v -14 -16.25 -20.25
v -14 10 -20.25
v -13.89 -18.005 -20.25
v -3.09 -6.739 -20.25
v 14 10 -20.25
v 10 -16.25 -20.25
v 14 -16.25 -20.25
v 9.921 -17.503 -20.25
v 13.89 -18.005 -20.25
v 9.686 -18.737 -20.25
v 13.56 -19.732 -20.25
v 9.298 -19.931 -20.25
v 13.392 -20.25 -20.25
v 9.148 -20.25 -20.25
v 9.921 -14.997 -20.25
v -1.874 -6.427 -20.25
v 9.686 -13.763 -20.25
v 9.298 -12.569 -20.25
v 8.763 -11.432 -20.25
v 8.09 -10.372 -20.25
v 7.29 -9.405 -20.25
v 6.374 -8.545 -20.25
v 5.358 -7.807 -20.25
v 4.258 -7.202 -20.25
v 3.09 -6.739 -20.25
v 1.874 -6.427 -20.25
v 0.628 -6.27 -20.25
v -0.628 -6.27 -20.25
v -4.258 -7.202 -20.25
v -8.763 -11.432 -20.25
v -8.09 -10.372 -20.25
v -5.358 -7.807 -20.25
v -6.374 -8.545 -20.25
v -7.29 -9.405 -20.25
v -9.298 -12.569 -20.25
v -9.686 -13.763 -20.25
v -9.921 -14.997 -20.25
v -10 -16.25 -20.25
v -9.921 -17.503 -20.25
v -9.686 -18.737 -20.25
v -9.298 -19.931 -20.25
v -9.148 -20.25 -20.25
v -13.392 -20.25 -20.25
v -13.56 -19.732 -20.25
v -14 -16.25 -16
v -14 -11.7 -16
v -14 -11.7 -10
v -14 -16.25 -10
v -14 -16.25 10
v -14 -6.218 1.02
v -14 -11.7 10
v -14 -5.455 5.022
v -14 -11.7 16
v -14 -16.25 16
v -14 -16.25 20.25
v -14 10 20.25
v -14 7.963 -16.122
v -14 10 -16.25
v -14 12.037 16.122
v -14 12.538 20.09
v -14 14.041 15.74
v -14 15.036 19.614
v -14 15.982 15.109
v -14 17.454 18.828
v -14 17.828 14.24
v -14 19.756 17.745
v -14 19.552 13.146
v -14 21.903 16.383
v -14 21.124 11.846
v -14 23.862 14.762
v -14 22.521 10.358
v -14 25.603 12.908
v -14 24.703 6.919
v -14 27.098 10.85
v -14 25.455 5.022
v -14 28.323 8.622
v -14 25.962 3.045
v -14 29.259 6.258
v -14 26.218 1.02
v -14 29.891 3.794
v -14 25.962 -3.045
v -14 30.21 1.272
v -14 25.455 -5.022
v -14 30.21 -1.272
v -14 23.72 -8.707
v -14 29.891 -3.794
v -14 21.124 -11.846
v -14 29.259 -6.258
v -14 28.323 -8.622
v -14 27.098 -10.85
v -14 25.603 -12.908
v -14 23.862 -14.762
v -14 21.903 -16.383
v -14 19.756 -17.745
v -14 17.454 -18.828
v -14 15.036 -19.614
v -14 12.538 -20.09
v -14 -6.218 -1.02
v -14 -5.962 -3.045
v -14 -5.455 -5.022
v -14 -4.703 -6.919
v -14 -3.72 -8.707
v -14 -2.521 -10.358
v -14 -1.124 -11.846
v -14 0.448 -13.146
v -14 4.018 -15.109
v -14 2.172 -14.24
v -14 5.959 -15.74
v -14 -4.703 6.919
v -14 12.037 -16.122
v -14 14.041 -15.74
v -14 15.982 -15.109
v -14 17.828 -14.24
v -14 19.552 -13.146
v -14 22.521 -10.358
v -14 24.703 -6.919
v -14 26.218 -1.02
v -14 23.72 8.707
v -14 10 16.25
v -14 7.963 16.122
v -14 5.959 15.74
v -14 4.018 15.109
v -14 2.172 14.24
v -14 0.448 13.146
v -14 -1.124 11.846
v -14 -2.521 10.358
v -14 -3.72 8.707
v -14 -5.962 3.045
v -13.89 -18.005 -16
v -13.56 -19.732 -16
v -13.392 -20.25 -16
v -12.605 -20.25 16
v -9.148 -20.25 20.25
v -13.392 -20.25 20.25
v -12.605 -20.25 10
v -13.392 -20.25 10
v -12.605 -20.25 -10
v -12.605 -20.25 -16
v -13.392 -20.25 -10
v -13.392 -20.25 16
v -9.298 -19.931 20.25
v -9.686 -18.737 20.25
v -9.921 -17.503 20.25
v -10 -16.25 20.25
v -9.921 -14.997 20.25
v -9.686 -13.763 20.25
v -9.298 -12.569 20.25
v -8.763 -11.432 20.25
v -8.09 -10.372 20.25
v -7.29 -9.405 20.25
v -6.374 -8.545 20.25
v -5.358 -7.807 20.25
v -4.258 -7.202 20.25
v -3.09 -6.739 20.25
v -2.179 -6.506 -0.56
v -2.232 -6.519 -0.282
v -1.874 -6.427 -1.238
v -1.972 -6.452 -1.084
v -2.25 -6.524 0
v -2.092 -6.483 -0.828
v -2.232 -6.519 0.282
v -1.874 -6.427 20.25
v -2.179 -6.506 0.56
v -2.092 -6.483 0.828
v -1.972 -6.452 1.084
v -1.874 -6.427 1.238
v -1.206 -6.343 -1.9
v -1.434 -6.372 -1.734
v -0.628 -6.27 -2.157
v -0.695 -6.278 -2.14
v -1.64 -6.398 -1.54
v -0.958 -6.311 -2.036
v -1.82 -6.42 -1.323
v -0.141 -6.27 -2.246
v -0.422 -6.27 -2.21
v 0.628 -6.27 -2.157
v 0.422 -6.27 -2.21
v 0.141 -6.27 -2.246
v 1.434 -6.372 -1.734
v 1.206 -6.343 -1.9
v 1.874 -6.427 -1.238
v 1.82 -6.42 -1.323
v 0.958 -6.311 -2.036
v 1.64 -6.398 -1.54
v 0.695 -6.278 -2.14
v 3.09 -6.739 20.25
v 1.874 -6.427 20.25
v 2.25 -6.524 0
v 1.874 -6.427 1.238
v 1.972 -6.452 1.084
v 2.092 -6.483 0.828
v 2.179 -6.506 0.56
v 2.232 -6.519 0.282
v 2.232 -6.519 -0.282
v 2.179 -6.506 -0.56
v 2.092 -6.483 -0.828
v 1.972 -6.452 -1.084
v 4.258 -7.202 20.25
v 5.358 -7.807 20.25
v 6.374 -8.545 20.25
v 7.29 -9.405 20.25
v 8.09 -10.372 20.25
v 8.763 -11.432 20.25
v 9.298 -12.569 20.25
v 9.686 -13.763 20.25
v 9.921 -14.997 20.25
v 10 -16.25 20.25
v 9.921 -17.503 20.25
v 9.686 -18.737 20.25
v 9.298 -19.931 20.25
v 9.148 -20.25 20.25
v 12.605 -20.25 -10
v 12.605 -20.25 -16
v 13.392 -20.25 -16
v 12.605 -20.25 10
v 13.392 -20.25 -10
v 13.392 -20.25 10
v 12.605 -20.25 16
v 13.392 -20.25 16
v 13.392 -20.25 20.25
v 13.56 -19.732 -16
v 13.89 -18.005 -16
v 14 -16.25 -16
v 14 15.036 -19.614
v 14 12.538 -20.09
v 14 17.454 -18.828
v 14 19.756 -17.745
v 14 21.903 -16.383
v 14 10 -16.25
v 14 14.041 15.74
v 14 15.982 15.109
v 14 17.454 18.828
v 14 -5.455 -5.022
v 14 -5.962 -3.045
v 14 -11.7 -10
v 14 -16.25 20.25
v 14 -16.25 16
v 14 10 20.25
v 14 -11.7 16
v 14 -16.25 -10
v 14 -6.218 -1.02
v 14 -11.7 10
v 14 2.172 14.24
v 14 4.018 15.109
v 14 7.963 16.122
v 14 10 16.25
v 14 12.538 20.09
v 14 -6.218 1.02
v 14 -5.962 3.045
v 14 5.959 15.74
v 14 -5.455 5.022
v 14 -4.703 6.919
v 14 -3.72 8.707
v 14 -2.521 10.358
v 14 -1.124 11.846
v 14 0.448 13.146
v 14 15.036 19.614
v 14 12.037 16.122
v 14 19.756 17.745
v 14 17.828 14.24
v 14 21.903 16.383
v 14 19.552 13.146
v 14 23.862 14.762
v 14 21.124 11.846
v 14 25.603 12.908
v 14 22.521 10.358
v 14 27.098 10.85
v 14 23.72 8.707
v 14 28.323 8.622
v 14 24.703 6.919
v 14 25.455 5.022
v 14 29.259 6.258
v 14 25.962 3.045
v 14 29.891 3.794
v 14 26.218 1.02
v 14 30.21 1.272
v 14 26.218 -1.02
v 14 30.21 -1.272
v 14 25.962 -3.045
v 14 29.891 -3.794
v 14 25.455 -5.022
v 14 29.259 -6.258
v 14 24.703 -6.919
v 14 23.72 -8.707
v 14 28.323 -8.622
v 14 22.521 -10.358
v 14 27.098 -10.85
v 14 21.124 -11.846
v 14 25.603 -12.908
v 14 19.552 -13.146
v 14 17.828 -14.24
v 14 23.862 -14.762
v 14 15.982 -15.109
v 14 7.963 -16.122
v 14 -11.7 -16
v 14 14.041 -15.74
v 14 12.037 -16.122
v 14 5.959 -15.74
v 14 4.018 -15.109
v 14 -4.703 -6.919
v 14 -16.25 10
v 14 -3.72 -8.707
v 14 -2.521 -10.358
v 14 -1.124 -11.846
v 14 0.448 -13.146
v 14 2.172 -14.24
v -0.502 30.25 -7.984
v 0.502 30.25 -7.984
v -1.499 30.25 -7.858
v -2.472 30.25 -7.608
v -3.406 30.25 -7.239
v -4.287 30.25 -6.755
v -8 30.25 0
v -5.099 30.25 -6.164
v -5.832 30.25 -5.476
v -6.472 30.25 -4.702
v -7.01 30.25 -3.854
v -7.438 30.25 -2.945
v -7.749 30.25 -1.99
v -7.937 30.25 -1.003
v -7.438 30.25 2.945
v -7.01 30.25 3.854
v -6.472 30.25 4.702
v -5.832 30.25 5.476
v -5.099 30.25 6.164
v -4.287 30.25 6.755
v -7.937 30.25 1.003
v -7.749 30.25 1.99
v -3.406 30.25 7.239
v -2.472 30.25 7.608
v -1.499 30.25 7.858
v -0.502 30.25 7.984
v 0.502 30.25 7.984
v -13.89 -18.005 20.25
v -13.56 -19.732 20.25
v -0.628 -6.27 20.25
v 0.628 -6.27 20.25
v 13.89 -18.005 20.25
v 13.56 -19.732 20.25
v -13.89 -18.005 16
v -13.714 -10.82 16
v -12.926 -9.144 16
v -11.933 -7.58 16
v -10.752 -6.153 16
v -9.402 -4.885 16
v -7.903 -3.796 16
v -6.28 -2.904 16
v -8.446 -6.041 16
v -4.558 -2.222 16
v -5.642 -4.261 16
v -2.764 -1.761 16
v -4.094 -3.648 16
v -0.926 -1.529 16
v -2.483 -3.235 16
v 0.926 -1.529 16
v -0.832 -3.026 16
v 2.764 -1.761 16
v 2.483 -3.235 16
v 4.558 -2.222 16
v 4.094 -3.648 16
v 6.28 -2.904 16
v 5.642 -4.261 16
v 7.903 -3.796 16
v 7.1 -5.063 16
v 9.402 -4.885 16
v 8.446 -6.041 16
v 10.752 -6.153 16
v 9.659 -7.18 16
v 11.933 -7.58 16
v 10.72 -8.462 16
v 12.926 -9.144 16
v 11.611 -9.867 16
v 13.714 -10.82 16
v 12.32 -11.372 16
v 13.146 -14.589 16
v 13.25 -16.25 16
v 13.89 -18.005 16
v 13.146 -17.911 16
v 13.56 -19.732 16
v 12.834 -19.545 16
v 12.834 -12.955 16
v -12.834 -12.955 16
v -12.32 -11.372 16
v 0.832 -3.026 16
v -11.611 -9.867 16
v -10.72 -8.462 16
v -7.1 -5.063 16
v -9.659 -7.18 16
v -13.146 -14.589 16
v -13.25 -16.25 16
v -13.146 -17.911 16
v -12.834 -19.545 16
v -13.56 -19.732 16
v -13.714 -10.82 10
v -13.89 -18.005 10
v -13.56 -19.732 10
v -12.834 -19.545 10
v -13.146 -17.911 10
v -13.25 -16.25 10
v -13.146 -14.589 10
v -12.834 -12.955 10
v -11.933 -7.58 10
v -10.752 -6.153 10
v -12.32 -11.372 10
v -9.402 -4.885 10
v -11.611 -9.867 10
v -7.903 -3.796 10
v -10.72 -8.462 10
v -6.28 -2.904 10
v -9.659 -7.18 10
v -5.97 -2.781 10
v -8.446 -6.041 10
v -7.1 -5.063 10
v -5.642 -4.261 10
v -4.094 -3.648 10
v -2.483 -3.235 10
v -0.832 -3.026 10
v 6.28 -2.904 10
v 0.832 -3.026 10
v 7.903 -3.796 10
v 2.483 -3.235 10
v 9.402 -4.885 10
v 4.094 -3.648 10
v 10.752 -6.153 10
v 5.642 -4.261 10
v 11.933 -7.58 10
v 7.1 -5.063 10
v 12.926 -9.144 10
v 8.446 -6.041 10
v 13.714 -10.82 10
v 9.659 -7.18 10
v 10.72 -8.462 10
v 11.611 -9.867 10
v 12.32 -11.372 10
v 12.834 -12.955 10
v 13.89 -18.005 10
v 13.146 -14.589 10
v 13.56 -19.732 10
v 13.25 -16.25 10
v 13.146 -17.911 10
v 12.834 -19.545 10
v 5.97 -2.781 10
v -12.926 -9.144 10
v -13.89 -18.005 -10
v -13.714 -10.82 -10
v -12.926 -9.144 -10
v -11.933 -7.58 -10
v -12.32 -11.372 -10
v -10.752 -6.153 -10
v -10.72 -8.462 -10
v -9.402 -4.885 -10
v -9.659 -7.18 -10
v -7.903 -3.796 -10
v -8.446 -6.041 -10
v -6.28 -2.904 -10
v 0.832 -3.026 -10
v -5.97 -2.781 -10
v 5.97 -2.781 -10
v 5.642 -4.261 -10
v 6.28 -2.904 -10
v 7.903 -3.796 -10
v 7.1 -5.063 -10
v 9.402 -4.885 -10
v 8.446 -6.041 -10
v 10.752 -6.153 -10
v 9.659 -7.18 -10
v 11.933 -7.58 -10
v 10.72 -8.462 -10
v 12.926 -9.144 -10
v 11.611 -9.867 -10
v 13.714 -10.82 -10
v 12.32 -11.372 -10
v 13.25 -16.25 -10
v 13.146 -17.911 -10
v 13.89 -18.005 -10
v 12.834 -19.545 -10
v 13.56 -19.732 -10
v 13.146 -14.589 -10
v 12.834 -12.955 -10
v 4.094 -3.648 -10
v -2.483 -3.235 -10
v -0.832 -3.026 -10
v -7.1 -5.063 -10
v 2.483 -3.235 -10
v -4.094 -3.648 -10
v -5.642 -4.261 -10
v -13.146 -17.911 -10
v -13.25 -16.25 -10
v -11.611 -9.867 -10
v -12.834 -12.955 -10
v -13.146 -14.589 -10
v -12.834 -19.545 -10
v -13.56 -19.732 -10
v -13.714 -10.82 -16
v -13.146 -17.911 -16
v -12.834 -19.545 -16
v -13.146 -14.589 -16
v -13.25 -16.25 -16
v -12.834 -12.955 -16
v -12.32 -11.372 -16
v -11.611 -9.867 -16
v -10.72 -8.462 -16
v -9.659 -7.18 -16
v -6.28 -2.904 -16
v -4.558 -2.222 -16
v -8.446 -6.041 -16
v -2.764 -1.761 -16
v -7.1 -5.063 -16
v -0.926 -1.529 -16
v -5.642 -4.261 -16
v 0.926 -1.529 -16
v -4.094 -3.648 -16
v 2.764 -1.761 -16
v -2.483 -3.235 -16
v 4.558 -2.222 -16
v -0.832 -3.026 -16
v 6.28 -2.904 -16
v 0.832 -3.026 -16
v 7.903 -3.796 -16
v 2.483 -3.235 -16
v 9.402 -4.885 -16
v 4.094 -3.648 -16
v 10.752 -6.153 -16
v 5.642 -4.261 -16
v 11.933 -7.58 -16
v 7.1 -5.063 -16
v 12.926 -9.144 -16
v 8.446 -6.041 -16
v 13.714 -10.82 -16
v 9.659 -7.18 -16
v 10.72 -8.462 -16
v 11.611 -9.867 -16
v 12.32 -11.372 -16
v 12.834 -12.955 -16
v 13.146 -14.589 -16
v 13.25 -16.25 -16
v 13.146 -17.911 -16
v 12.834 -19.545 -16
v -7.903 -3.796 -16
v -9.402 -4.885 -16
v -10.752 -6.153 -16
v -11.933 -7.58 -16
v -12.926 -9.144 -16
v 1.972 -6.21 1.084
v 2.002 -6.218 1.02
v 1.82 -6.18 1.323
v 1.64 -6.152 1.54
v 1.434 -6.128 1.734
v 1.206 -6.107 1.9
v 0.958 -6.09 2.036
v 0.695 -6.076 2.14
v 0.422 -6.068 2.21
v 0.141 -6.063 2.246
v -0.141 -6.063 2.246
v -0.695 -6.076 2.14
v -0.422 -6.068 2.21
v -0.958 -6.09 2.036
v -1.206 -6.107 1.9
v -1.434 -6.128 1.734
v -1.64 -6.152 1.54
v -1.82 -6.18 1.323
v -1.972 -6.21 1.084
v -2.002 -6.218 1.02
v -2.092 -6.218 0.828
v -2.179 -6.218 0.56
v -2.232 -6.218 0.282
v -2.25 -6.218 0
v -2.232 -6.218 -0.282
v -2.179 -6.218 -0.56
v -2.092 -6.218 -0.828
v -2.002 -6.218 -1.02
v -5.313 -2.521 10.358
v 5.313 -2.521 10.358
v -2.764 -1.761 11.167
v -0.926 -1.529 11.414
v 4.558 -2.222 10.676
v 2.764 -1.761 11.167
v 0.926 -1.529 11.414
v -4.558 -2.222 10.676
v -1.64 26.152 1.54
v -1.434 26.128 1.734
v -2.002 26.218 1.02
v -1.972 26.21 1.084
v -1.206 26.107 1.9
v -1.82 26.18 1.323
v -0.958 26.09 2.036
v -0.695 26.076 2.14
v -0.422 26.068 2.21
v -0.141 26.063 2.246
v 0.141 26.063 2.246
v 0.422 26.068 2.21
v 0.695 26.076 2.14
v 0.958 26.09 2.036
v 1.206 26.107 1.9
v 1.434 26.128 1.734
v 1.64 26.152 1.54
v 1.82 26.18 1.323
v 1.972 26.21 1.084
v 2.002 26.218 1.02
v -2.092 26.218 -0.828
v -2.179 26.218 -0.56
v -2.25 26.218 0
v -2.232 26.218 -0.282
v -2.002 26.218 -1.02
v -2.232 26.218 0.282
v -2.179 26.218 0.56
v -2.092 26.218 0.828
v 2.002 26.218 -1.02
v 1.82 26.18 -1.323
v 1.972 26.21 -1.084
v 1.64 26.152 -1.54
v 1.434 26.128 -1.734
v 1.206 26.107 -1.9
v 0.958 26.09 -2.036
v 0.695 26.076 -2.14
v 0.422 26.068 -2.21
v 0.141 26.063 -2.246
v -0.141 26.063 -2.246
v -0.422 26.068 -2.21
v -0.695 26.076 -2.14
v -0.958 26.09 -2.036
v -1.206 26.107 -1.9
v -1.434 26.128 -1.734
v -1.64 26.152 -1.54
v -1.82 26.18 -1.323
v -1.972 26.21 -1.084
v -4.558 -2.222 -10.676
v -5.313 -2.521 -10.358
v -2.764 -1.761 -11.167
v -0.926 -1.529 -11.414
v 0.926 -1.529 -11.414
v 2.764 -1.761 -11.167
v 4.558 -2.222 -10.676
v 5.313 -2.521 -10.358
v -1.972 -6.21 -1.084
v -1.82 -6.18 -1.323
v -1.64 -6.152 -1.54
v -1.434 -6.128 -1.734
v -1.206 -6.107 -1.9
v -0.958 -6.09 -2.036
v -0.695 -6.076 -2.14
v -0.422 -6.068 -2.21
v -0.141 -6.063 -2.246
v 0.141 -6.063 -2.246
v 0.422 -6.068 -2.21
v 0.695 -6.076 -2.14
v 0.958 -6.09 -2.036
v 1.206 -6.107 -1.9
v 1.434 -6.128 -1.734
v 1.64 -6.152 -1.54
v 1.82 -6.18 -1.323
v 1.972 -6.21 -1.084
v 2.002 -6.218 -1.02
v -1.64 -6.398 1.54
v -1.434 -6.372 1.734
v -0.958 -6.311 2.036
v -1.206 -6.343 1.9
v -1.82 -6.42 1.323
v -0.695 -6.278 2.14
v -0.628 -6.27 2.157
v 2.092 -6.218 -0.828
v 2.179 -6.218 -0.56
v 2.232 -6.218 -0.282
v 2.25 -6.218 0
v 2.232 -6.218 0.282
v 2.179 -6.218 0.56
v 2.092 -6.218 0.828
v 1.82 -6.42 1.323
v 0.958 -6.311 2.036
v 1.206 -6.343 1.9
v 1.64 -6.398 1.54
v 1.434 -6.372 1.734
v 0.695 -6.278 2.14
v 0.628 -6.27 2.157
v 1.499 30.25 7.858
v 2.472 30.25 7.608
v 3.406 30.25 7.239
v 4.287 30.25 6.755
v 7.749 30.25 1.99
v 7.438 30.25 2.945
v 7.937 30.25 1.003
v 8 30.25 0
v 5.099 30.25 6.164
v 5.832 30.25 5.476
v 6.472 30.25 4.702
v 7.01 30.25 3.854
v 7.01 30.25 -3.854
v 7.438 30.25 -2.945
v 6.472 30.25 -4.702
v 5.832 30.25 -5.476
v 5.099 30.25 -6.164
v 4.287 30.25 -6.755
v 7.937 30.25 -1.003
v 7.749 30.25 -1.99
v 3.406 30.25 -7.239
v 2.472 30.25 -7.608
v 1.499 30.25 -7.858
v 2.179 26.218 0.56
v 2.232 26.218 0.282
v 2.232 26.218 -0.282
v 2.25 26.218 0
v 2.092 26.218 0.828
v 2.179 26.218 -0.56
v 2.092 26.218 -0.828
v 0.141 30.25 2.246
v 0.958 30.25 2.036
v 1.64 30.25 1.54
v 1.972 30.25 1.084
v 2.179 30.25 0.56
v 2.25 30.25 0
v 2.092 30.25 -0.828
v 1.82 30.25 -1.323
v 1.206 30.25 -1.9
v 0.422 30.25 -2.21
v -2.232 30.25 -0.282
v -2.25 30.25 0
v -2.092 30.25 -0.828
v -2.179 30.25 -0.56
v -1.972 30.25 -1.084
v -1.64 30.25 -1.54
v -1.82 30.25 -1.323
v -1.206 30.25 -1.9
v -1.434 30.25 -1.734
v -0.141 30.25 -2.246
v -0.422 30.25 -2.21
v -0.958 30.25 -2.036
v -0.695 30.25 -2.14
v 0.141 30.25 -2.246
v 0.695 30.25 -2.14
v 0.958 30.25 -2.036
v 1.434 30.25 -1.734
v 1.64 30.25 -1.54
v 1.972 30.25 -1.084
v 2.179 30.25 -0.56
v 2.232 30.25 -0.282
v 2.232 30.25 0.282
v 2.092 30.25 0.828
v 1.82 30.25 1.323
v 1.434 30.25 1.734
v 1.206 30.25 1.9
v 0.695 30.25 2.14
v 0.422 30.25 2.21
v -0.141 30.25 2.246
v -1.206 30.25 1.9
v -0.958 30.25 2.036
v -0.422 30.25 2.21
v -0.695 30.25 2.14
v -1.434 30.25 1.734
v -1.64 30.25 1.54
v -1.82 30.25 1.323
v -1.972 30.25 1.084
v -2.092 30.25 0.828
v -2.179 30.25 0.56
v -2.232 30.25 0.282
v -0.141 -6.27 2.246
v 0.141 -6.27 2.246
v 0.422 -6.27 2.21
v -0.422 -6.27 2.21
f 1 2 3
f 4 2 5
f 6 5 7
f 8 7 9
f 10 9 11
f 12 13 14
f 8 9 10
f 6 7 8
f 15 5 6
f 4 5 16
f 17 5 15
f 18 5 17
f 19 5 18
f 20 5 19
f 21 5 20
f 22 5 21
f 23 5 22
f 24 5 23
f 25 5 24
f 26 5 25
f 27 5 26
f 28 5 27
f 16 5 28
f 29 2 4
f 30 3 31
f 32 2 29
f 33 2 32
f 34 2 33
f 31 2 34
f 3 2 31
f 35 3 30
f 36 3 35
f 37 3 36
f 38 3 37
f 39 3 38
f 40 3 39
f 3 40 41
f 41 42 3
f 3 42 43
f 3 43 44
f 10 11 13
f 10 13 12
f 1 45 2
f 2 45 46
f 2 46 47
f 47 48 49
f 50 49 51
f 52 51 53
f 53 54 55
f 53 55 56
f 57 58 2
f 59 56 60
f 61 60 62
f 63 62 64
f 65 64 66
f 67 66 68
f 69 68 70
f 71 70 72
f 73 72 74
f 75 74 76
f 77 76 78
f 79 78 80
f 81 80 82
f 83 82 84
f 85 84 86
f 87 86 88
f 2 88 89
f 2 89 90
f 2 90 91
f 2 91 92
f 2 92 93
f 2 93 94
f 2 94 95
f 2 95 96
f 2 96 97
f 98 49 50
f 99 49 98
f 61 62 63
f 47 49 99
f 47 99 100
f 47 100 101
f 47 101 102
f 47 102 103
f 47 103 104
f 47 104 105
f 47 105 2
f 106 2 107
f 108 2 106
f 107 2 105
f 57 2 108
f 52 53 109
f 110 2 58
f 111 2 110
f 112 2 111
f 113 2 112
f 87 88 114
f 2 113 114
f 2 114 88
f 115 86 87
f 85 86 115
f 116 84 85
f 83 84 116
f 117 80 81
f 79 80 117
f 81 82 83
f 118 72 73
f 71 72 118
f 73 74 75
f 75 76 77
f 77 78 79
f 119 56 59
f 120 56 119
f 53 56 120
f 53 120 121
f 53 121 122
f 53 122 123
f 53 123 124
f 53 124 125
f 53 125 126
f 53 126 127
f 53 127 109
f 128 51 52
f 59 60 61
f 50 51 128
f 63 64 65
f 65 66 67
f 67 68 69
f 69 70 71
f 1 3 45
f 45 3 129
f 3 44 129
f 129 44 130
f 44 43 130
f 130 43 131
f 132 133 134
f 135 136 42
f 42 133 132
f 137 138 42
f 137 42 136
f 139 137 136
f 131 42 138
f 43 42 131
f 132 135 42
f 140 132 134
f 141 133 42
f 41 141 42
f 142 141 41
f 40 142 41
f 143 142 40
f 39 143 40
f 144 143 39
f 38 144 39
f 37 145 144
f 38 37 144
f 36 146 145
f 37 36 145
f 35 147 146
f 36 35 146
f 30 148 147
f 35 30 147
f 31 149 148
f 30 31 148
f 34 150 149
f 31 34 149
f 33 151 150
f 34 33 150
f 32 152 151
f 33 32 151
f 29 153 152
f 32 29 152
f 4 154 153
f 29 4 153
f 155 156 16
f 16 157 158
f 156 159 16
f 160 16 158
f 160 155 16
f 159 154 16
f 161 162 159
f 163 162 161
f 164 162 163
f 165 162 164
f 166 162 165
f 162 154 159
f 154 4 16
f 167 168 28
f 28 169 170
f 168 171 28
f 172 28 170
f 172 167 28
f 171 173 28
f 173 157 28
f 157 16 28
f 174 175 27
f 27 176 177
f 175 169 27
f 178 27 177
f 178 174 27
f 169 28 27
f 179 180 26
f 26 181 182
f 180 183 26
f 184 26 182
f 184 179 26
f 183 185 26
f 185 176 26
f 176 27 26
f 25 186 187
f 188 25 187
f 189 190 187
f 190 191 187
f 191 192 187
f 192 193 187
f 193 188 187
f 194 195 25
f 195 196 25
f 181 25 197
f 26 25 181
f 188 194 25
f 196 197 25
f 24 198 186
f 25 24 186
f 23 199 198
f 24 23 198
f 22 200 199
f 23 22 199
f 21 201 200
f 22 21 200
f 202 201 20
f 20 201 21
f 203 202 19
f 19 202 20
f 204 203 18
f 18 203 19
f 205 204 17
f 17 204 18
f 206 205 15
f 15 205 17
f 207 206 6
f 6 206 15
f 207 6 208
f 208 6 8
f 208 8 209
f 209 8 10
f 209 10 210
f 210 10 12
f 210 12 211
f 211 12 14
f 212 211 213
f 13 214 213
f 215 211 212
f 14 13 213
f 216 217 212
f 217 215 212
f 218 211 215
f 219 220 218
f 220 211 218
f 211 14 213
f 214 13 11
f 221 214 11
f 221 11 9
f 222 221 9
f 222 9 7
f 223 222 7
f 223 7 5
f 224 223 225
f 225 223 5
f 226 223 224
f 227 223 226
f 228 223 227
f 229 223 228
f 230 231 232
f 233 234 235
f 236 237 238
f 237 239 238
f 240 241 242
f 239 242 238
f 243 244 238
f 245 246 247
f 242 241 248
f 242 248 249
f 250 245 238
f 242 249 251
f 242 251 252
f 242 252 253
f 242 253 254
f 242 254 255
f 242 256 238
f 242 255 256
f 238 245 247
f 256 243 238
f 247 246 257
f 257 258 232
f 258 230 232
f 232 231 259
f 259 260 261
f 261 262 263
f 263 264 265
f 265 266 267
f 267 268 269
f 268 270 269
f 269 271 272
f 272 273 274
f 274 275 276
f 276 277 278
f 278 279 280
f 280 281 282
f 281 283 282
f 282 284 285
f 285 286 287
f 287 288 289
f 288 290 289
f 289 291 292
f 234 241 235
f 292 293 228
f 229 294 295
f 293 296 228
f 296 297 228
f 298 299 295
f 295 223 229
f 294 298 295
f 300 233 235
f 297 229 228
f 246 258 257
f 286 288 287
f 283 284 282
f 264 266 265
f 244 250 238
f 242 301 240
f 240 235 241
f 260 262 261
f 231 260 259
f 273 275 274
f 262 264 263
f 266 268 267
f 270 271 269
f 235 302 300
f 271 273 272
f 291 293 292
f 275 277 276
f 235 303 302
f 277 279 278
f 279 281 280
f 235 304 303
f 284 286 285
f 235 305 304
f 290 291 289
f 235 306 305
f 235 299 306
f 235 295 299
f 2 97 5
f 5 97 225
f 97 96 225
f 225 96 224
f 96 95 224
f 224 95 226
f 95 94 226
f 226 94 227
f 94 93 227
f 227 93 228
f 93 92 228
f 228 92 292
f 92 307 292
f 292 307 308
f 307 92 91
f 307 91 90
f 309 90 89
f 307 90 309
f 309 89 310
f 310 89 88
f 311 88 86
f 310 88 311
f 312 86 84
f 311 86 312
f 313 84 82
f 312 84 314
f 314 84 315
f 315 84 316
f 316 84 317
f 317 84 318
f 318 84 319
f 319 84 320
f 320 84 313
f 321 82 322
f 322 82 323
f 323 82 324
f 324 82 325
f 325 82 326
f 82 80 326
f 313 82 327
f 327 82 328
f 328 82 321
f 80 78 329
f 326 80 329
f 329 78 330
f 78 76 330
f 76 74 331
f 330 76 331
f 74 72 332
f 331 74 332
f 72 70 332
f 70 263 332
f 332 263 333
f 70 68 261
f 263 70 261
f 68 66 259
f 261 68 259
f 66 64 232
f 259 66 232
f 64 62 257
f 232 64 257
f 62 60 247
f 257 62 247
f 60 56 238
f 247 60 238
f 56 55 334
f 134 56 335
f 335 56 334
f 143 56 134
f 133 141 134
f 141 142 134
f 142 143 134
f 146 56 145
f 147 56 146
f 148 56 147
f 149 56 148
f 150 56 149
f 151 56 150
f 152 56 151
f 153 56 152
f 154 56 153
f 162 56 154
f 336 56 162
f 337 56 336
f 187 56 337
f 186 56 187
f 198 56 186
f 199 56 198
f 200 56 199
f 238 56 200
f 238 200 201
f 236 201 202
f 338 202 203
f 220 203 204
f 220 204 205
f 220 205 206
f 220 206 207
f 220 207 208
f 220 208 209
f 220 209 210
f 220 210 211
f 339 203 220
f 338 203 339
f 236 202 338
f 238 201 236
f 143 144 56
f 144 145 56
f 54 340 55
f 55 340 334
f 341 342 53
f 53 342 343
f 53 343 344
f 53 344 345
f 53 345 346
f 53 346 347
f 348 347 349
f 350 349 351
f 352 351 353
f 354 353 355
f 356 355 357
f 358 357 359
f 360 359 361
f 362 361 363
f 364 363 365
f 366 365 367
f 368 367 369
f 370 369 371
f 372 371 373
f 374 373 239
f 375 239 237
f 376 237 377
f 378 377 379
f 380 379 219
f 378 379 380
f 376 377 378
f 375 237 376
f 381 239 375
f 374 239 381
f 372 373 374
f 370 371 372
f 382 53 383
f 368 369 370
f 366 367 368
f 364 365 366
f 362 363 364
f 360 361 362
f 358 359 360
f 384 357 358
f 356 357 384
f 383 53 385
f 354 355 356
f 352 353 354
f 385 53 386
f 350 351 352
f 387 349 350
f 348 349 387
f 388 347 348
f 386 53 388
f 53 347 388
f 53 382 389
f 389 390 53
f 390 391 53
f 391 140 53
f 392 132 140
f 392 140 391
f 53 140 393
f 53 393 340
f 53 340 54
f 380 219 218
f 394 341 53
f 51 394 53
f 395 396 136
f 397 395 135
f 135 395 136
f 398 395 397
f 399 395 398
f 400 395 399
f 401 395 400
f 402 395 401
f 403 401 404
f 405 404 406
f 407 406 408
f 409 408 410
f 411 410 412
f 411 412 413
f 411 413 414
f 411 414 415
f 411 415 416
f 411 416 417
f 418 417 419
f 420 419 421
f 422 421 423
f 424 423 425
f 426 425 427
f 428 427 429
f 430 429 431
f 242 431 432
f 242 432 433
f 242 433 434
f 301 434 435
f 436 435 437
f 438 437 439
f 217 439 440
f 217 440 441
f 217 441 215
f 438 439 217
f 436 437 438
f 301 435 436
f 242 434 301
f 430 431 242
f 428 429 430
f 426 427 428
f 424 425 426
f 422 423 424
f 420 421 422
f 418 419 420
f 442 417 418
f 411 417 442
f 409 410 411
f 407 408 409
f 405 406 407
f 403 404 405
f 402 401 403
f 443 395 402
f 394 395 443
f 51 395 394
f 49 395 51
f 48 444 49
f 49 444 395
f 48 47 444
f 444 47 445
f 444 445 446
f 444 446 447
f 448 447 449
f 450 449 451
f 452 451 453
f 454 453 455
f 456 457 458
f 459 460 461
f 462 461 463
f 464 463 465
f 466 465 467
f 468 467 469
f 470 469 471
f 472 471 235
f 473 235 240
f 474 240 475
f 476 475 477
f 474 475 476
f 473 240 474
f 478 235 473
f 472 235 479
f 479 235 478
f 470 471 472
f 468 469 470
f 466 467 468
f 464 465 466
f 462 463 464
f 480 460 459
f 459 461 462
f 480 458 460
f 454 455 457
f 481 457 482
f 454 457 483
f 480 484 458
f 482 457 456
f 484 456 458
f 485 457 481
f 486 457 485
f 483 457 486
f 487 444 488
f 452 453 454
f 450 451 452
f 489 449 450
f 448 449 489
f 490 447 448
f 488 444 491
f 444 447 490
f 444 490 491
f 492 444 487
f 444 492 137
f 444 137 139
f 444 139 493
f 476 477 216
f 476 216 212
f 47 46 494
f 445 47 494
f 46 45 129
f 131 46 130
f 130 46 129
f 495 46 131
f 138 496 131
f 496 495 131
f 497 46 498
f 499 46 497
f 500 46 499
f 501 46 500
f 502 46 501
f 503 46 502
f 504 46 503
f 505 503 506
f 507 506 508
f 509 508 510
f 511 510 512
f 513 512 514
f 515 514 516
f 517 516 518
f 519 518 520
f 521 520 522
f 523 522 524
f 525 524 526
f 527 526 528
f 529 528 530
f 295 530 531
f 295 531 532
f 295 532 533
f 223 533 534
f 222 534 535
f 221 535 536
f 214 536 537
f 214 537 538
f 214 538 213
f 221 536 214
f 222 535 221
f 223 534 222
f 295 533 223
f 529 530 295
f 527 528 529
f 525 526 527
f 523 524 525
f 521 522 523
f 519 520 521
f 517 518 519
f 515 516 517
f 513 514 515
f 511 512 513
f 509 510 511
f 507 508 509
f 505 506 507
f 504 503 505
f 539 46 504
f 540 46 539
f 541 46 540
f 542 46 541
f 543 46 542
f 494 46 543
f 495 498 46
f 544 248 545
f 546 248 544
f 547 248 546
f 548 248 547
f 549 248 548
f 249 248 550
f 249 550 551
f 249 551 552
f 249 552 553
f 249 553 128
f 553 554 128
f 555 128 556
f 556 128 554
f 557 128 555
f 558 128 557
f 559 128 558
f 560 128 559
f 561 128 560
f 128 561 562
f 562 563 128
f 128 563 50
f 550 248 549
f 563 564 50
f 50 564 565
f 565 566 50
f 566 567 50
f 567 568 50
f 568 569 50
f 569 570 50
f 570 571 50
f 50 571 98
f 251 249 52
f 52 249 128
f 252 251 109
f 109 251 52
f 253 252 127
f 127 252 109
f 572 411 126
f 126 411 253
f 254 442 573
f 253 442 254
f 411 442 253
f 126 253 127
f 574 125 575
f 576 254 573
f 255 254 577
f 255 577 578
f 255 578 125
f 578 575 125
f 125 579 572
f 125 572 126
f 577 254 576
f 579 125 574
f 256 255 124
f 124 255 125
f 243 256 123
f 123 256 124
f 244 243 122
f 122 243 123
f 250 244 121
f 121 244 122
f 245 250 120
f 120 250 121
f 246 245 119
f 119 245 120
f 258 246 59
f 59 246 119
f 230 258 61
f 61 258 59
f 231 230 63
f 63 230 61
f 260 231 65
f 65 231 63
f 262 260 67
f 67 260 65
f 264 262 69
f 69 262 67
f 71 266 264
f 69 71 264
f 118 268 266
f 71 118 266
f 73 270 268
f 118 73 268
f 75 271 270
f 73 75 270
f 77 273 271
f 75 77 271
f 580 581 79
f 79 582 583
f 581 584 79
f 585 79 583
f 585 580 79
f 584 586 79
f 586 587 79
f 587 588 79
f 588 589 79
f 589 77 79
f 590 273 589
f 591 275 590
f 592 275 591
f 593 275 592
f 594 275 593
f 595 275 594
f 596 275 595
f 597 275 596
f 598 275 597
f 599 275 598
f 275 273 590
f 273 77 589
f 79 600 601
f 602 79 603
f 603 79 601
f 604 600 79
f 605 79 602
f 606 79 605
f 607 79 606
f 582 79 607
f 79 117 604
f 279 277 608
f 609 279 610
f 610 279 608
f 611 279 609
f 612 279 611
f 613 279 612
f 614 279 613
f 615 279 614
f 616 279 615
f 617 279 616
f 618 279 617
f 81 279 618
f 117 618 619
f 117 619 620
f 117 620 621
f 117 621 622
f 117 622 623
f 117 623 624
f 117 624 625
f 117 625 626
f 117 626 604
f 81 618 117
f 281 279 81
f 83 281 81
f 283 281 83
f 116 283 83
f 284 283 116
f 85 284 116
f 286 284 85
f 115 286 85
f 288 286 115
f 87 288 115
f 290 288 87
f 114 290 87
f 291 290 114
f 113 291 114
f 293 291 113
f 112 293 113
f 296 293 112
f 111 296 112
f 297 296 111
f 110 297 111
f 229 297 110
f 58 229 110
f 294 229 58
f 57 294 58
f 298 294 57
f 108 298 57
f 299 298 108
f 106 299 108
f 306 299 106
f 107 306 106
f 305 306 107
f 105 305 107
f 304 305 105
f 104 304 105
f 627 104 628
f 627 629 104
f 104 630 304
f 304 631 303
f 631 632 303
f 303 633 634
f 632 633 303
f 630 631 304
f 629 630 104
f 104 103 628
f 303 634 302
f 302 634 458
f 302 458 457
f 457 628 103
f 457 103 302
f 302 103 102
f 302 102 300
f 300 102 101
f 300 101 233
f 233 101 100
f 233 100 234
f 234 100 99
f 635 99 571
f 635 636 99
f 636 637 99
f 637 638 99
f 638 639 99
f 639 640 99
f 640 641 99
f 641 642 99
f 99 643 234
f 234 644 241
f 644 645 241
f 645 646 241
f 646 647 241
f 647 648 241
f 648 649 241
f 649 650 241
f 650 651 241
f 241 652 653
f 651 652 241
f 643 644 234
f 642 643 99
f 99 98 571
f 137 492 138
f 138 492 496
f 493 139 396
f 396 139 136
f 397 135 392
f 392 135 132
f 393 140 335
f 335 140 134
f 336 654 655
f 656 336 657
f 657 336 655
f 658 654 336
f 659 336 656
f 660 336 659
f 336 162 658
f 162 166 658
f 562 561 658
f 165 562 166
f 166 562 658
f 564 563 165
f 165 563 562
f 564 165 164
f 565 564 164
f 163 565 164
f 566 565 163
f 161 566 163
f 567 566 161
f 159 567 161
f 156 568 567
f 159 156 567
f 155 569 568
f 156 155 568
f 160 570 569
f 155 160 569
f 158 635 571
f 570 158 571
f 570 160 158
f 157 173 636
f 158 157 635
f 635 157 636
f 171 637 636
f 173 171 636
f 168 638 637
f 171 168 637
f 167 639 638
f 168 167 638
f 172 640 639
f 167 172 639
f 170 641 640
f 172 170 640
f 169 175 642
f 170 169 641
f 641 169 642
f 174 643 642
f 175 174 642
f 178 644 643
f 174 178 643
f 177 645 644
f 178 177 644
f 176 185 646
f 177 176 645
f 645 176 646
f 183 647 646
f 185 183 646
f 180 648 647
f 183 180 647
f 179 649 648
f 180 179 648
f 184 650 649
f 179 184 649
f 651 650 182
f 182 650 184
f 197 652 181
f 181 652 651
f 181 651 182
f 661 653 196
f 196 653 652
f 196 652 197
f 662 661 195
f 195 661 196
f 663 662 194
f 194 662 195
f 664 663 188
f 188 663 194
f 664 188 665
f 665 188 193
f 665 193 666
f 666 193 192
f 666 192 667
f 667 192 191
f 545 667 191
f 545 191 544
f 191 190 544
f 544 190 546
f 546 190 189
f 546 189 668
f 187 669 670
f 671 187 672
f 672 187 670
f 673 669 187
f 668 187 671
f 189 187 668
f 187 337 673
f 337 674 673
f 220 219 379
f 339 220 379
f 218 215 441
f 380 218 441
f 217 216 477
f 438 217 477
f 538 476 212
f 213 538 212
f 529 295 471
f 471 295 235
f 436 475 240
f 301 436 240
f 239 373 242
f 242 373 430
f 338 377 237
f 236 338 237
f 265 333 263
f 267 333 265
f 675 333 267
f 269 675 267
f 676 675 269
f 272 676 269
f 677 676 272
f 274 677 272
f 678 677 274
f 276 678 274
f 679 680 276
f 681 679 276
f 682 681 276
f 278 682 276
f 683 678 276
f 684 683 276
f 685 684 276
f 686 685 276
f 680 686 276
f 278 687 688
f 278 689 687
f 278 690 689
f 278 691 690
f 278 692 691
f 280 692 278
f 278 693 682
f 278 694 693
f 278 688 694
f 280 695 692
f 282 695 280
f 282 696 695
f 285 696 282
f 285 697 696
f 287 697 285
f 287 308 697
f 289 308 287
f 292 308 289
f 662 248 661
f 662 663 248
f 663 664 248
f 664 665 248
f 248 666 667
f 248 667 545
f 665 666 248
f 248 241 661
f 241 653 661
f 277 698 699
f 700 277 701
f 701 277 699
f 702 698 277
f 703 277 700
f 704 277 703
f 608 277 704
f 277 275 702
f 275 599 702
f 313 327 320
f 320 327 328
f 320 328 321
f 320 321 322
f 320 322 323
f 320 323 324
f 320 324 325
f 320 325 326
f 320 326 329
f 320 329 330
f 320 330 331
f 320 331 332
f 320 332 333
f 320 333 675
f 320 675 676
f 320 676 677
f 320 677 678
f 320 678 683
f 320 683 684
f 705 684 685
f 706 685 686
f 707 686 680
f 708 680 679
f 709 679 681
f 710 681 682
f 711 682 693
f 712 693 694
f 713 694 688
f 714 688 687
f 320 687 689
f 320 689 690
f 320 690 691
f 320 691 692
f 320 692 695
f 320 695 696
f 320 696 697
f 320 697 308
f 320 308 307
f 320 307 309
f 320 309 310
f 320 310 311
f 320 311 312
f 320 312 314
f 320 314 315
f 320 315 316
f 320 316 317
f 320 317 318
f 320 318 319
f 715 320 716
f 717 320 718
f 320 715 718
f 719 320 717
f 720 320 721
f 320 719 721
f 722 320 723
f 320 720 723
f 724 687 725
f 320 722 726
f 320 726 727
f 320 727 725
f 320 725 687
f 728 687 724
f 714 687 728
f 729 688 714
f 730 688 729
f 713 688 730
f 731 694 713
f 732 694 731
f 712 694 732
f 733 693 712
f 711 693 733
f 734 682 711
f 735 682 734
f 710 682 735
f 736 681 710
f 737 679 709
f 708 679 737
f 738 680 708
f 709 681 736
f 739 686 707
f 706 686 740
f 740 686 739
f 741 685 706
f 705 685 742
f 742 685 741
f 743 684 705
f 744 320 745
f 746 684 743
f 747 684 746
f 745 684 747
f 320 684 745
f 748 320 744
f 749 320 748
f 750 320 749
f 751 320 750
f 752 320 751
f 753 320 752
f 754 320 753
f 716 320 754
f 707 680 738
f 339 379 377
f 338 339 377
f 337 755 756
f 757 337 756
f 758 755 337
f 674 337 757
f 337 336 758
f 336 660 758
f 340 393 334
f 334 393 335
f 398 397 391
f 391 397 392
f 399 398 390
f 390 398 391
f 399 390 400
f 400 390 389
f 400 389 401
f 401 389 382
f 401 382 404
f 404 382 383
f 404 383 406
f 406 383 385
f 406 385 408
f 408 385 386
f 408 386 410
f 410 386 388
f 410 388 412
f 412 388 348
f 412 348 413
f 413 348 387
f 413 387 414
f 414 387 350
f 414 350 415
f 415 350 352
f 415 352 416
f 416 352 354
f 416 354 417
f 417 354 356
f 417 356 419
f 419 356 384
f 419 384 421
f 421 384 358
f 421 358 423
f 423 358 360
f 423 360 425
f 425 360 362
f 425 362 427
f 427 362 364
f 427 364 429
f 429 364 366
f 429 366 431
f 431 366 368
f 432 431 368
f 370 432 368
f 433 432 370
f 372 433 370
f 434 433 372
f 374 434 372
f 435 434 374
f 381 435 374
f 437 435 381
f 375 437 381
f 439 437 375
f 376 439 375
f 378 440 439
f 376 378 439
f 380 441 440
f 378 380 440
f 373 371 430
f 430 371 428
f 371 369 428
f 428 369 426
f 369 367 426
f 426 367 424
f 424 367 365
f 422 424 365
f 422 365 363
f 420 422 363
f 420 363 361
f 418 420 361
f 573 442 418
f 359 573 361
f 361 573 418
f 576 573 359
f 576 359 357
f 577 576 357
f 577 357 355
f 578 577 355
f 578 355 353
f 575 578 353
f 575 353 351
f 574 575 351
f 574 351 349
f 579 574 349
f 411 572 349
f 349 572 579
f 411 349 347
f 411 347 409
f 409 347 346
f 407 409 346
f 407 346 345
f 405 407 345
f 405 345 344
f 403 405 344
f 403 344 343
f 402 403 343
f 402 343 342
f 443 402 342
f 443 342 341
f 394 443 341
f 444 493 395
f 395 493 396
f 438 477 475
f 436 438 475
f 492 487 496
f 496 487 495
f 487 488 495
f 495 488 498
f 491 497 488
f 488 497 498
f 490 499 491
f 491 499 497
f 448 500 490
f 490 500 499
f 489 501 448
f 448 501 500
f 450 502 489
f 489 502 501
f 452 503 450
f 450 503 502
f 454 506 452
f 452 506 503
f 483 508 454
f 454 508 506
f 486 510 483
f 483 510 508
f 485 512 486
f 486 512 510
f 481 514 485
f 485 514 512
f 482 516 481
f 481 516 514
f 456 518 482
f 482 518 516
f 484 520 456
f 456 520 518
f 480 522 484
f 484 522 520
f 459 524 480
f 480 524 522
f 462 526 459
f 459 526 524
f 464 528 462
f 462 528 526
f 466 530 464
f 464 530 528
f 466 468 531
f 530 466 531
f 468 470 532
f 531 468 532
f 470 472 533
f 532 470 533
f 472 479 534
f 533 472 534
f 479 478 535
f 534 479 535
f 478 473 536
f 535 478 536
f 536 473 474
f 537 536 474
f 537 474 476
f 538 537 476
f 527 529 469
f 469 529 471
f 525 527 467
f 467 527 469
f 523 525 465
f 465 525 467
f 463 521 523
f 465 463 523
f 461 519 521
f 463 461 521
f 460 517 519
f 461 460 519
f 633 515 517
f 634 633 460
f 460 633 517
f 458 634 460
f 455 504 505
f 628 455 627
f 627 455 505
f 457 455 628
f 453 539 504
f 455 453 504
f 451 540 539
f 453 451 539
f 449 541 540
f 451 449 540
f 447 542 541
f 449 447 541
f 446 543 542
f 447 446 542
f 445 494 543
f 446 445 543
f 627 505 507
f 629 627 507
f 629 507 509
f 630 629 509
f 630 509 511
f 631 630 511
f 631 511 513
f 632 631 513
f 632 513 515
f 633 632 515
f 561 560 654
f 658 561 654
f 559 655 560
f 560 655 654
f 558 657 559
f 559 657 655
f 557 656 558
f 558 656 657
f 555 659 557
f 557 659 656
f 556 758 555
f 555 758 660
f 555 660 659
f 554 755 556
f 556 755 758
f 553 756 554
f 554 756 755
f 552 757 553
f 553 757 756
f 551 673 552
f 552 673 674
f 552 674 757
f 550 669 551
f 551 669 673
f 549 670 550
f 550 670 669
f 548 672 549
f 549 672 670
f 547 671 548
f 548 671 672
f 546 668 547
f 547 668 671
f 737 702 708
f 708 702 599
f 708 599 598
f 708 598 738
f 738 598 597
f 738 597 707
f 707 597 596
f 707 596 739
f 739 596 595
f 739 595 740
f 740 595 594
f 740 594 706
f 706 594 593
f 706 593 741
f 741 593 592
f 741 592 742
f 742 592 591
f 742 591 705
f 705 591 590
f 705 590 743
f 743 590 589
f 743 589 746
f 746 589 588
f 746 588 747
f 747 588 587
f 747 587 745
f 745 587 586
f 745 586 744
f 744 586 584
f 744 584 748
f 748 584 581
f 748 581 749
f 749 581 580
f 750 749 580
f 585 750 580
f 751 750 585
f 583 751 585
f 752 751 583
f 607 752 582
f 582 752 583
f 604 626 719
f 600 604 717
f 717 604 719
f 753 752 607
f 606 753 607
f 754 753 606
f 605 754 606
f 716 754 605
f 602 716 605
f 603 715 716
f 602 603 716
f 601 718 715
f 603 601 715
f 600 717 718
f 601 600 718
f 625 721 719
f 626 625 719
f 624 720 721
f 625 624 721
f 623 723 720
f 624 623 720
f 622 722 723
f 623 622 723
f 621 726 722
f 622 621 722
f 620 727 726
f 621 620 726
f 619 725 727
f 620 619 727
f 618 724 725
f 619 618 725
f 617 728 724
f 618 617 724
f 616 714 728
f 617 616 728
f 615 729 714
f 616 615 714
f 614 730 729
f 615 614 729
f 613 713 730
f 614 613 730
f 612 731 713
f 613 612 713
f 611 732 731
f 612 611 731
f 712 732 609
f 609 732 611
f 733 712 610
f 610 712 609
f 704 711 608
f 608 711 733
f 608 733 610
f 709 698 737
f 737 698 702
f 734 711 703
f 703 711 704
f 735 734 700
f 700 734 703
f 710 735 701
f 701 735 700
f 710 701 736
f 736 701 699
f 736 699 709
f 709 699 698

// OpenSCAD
// Antenna to axis mount
// Satnogs Project 2014 MPL2.0 http://satnogs.org

$fn=50;

mast_1 = 32.5;		 // Axis mast diameter
mast_2 = 20;		 // Antenna mast diameter
offset = 8;			 // Extra width of mount
tireup_w = 6; 		 // Width of tireup
tireup_h = 1.5;	 // Height of tireup
washer = 16;		 // Washer diameter
bolt = 4.5;			 // Bolt for antenna mast


module axises() {
	translate([0,(mast_1+mast_2)/2-mast_1/2,0])
		rotate([0,90,0])
			cylinder(h=mast_2+offset+1, d=mast_1, center=true);
	translate([0,-(mast_1+mast_2)/2+mast_2/2,0])
		cylinder(h=mast_1+offset+1, d=mast_2, center=true);
	// Bolt for antenna mast cylinder
	translate([0,(mast_1+mast_2)/2-mast_1/2,0])
		rotate([90,0,0])
			cylinder(h=mast_1+offset+1, d=bolt, center=true);
}

module axises_outer() {
	translate([0,(mast_1+mast_2)/2-mast_1/2,0])
		rotate([0,90,0])
			cylinder(h=mast_2+offset, d=mast_1+offset, center=true);
	translate([0,-(mast_1+mast_2)/2+mast_2/2,0])
		cylinder(h=mast_1+offset, d=mast_2+offset, center=true);
	// Outer washer stud
	translate([0,(mast_1+mast_2)/2-mast_1/2,0])
		rotate([90,0,0])
			cylinder(h=mast_1+offset, d=washer, center=true);
}

module tire_up() {
	difference() {
		cylinder(h=tireup_w,d=mast_2+offset+tireup_h,center=true);
		cylinder(h=tireup_w,d=mast_2+offset-tireup_h,center=true);
	}
}

module cut() {
	translate([0,-(mast_1+mast_2)/2,0])
		cube([offset*5,offset*1.5,mast_1+offset*4],center=true);
}

difference() {
	hull() {
		axises_outer();
	}
	axises();
	mirror([0,0,1]) {
		translate([0,-(mast_1+mast_2)/2+mast_2/2,(2*mast_1)/5])
			tire_up();
	}
	translate([0,-(mast_1+mast_2)/2+mast_2/2,(2*mast_1)/5])
		tire_up();
	cut();
}
